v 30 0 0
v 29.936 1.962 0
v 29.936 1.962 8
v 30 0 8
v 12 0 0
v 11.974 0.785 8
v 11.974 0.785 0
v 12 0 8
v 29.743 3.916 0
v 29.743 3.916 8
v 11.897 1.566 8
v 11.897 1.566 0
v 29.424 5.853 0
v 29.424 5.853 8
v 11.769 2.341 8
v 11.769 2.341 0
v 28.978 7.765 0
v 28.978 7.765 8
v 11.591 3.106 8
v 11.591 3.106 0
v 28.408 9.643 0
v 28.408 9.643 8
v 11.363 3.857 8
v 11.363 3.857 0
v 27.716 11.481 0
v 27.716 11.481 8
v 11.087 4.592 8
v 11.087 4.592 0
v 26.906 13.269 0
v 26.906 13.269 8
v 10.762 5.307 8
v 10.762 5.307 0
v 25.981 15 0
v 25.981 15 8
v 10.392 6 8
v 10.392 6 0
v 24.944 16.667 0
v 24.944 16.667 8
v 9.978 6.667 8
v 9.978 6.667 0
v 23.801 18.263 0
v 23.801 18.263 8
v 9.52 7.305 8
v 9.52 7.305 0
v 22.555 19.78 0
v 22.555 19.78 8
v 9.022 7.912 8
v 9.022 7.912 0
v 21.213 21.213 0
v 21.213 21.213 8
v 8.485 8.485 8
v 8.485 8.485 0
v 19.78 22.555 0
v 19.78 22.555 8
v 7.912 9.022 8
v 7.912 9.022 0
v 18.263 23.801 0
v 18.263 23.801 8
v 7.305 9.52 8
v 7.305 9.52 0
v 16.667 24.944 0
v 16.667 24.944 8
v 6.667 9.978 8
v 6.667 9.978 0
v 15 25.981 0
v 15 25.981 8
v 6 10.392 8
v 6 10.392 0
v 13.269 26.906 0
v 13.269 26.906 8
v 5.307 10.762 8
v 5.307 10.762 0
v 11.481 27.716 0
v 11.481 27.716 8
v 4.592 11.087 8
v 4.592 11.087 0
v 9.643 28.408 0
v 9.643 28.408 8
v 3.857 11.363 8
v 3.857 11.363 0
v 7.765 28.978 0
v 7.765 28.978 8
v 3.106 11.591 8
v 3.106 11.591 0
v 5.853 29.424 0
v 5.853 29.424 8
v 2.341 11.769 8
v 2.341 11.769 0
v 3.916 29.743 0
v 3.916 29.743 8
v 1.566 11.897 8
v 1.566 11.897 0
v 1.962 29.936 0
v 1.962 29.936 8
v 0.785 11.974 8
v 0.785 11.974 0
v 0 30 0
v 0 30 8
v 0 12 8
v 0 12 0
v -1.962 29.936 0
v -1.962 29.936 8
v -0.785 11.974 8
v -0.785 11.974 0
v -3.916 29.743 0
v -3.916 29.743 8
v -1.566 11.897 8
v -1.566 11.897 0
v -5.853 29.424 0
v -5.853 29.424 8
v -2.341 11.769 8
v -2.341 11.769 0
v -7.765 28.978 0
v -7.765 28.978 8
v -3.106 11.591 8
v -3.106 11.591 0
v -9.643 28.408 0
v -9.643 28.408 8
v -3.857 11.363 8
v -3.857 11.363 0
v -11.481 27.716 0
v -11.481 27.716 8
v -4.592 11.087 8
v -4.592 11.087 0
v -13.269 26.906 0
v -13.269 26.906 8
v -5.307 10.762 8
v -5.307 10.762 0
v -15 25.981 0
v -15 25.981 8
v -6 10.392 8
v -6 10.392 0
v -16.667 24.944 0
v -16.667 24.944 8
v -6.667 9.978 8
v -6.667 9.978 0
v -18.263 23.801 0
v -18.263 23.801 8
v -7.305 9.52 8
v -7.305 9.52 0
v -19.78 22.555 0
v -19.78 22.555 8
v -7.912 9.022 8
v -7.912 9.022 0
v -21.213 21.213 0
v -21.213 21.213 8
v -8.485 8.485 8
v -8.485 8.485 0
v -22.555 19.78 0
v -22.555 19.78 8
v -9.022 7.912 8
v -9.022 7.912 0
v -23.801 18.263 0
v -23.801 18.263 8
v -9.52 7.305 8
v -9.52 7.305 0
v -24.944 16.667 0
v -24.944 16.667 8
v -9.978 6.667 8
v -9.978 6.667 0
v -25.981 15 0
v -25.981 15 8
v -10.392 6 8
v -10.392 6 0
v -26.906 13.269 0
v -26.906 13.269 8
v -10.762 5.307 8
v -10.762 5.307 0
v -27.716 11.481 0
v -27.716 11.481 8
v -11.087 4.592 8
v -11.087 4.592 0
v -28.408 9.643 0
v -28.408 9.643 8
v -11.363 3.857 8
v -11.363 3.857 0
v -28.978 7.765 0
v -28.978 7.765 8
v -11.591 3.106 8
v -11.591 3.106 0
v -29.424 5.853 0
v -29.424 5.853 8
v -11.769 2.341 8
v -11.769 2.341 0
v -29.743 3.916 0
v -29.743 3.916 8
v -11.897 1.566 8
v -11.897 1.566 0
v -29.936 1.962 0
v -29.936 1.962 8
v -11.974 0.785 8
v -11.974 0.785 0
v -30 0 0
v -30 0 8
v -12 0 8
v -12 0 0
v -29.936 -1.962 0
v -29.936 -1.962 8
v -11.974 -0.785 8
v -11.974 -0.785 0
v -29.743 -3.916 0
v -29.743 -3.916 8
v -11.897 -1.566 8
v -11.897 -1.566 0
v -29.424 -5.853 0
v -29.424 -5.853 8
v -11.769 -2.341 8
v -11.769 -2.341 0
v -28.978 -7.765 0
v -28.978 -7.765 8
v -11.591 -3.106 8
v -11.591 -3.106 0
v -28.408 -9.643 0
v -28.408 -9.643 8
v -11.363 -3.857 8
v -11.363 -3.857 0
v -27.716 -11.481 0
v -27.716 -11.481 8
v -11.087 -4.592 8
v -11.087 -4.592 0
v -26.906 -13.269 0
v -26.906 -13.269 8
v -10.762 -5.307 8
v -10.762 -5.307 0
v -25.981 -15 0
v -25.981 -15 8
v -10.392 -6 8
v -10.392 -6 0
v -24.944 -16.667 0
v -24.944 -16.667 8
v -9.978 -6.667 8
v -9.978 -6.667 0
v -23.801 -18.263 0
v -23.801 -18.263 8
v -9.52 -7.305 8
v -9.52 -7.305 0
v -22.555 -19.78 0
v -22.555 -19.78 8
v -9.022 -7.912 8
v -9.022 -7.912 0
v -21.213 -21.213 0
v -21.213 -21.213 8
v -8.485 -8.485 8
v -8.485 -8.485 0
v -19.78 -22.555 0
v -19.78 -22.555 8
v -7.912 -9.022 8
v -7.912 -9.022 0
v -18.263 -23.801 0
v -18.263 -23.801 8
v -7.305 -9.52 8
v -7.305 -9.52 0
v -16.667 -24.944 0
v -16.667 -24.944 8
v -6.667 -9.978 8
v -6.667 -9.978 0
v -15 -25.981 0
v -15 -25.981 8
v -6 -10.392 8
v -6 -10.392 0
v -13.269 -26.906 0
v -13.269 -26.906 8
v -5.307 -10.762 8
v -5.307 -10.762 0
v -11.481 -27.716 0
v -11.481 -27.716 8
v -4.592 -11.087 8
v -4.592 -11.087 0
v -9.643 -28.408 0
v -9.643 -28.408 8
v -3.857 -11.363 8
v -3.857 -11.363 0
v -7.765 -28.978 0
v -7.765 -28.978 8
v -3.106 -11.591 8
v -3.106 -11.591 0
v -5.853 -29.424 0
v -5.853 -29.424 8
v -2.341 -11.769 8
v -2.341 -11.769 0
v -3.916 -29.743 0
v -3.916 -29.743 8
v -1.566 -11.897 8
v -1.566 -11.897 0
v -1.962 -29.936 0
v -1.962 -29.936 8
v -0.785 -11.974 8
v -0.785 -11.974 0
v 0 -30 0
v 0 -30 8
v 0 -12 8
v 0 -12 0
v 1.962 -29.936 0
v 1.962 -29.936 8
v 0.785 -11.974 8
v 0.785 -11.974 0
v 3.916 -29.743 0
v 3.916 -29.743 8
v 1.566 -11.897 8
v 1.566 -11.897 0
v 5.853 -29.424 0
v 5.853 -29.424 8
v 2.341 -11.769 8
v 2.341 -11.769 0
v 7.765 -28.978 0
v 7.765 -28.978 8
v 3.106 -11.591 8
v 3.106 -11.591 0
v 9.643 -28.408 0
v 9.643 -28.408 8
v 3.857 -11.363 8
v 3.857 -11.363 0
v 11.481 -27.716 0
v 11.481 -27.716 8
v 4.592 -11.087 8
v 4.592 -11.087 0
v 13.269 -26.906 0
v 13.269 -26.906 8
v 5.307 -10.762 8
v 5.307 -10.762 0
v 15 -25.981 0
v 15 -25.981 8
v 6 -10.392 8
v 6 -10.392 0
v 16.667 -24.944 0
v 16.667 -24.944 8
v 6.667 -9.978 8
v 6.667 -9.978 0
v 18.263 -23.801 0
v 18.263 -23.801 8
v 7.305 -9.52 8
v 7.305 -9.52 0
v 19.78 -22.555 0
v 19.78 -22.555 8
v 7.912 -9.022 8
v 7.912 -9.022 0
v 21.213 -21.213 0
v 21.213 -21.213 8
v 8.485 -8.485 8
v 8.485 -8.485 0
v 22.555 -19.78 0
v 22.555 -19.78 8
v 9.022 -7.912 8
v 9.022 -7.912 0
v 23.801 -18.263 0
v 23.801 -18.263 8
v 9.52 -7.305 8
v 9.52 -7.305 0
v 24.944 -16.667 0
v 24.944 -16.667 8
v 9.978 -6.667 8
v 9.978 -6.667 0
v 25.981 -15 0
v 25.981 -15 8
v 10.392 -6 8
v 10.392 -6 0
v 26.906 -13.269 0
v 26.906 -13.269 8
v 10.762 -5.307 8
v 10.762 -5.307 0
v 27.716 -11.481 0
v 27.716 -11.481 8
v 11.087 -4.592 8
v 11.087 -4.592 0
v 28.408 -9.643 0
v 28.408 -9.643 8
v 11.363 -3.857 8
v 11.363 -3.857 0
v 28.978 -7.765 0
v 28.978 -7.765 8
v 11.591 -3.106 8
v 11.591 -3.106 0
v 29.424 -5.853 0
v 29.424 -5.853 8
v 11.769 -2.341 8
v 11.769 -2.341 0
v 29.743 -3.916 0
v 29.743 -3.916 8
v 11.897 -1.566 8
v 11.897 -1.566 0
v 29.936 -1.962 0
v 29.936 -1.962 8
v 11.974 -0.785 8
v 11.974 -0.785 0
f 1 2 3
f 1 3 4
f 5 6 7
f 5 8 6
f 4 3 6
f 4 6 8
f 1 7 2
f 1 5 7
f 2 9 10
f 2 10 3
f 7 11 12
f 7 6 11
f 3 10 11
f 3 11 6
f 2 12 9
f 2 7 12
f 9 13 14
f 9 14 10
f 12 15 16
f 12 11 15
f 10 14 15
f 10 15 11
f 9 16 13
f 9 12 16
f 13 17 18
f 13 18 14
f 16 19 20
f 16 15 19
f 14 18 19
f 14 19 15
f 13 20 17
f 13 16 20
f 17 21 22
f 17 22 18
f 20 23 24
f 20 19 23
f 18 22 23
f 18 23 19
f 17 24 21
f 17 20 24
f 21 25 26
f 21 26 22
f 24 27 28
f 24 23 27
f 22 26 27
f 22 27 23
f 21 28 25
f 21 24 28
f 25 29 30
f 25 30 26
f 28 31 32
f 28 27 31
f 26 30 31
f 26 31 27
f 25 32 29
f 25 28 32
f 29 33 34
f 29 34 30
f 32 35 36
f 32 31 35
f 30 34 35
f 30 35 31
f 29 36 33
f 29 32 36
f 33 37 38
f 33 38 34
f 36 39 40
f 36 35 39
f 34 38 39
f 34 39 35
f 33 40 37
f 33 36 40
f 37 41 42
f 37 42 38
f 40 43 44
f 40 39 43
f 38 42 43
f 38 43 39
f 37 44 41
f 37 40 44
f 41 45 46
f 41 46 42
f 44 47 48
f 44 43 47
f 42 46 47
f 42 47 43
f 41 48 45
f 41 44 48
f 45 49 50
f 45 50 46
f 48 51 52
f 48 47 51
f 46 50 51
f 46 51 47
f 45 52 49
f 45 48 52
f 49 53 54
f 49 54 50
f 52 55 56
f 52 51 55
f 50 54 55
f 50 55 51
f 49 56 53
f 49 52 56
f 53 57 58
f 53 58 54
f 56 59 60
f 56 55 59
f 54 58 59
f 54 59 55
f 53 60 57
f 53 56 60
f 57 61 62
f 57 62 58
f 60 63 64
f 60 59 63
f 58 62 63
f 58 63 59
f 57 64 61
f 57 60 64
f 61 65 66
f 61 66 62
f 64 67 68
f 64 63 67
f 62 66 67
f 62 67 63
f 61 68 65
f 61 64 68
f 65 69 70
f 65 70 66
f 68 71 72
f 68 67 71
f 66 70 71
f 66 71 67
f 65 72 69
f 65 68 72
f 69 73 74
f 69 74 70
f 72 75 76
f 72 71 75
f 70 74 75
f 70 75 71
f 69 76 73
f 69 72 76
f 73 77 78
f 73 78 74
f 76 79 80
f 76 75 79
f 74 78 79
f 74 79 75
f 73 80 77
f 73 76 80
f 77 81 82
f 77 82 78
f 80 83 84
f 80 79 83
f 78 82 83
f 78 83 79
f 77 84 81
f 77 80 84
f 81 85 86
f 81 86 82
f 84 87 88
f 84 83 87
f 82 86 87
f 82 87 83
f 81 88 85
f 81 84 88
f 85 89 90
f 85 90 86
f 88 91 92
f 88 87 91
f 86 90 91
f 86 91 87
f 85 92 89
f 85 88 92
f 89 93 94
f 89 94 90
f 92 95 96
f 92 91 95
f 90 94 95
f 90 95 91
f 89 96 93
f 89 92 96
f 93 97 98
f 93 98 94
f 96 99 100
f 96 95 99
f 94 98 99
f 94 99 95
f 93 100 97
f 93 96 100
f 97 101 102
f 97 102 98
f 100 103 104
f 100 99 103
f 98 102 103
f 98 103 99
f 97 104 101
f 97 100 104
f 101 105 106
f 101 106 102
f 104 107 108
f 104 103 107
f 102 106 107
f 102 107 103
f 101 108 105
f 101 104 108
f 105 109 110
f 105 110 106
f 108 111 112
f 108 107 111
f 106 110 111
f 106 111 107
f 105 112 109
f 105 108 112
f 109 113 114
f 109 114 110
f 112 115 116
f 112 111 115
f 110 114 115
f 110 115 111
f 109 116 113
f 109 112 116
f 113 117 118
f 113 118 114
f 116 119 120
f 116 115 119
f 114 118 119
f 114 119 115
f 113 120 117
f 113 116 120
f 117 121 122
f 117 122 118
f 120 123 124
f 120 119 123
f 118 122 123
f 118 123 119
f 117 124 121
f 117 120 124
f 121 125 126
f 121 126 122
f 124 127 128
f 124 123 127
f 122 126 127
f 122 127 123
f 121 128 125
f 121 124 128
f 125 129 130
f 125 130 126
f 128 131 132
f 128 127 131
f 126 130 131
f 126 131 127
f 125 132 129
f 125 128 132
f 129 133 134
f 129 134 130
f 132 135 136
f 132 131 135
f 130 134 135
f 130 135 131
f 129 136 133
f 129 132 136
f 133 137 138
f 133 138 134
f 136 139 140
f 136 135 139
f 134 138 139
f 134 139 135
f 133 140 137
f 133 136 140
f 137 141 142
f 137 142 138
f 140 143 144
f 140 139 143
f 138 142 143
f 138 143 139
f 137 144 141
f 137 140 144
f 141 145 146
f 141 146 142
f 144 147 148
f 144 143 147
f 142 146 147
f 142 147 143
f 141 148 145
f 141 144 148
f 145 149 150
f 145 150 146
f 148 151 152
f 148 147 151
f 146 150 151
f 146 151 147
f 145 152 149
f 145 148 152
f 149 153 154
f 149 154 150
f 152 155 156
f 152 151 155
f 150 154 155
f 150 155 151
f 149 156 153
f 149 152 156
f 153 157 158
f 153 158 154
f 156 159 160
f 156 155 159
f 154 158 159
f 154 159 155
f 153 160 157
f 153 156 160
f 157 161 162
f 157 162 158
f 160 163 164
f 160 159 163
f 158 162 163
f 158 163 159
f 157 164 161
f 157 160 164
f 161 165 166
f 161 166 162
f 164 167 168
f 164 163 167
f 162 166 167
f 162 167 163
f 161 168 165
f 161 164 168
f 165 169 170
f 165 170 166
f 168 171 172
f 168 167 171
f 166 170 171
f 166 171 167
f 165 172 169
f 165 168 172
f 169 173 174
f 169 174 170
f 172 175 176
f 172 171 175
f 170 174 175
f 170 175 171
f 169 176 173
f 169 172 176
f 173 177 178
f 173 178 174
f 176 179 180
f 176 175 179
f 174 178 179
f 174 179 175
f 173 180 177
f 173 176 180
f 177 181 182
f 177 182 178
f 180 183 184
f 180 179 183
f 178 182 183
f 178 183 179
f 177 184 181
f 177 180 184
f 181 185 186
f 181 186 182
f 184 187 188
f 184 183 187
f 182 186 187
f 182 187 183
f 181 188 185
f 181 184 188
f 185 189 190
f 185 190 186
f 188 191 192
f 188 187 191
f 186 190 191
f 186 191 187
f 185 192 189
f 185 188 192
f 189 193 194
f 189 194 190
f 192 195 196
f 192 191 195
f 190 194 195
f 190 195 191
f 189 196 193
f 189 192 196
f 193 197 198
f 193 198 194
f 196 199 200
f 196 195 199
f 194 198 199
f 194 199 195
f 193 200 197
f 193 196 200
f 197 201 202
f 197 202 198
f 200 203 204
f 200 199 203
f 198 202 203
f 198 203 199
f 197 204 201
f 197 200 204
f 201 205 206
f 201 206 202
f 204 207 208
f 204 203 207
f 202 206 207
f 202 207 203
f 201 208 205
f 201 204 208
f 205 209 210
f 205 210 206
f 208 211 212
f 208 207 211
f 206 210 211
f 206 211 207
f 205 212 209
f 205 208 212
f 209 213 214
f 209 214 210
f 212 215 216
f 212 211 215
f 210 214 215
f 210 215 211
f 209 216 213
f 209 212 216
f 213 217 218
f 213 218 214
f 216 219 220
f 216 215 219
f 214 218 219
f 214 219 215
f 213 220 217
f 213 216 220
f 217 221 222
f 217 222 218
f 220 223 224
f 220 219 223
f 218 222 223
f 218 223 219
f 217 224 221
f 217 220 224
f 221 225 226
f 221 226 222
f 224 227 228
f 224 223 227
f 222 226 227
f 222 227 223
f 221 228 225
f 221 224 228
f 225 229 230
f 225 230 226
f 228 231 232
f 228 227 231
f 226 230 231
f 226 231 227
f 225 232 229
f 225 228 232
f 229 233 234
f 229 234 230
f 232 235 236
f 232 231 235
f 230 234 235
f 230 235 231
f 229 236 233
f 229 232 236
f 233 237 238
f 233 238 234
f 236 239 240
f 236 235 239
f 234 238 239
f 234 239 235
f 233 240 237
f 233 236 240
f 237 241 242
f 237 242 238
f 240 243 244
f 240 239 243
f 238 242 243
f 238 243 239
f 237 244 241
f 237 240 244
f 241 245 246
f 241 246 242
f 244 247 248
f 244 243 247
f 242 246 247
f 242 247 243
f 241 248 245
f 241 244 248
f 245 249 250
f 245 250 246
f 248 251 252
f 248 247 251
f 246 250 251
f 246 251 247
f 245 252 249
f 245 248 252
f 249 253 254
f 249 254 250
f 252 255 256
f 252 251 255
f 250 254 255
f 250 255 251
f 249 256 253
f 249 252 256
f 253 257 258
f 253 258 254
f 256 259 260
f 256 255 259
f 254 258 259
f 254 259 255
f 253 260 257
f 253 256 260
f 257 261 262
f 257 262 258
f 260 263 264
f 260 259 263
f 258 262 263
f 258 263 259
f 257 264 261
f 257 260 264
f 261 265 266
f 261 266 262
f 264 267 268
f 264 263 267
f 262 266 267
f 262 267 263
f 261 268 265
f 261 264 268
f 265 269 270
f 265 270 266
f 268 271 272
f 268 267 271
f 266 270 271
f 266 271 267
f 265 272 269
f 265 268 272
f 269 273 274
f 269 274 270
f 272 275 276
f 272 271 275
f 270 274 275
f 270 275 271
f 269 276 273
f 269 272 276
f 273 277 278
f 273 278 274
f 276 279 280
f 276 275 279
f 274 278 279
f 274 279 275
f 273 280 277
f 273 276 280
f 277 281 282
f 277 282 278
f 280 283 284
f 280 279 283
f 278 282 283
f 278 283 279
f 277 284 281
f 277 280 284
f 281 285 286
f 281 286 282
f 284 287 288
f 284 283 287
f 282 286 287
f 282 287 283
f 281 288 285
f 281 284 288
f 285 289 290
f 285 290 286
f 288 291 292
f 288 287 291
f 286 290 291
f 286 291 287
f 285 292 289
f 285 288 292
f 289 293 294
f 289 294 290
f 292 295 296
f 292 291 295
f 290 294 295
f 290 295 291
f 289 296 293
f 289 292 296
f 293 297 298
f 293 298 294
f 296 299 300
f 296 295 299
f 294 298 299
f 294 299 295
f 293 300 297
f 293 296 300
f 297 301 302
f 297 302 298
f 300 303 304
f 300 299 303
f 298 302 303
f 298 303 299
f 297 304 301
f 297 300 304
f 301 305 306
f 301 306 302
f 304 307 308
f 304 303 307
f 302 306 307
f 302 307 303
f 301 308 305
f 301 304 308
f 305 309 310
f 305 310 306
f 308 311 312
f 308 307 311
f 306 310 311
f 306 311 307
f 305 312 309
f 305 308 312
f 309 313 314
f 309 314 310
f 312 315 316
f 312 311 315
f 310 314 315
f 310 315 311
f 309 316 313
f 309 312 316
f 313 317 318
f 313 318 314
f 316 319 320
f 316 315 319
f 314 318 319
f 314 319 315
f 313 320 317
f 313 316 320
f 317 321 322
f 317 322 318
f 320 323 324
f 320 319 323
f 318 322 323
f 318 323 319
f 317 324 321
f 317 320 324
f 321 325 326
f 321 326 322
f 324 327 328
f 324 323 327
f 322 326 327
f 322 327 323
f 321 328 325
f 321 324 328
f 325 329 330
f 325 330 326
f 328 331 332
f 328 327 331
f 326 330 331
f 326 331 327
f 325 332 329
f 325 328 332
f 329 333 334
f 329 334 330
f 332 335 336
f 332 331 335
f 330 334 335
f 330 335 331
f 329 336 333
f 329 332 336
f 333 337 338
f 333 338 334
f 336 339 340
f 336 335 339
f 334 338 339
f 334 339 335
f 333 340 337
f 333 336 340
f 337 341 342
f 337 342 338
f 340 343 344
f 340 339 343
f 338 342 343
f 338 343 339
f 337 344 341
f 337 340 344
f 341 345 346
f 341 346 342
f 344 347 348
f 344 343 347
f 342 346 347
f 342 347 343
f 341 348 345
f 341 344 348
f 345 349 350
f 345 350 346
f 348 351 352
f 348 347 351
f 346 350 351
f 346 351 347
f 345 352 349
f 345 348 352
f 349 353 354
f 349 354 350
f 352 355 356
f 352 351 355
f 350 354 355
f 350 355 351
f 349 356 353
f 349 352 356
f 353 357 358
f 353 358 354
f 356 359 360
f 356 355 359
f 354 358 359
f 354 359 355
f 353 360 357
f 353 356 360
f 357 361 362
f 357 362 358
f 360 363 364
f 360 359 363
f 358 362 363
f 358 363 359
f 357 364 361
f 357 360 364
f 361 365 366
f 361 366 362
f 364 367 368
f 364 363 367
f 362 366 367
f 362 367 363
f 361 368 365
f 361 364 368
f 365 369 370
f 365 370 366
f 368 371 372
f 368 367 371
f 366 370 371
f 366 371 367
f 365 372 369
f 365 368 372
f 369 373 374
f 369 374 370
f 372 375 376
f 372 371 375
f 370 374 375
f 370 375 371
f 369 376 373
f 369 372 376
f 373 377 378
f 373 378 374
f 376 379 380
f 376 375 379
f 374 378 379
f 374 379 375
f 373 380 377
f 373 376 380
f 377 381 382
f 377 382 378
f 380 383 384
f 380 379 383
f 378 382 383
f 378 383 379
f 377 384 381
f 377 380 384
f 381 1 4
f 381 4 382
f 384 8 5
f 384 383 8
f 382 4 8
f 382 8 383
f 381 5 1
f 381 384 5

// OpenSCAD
// Original MechIntel educational model. CC0-1.0. Units: mm.
// Not a standardized or load-rated component.
$fn=96;
outer_diameter=60;
inner_diameter=24;
height=8;
difference(){ cylinder(d=outer_diameter,h=height); if(inner_diameter>0) translate([0,0,-1]) cylinder(d=inner_diameter,h=height+2); }
